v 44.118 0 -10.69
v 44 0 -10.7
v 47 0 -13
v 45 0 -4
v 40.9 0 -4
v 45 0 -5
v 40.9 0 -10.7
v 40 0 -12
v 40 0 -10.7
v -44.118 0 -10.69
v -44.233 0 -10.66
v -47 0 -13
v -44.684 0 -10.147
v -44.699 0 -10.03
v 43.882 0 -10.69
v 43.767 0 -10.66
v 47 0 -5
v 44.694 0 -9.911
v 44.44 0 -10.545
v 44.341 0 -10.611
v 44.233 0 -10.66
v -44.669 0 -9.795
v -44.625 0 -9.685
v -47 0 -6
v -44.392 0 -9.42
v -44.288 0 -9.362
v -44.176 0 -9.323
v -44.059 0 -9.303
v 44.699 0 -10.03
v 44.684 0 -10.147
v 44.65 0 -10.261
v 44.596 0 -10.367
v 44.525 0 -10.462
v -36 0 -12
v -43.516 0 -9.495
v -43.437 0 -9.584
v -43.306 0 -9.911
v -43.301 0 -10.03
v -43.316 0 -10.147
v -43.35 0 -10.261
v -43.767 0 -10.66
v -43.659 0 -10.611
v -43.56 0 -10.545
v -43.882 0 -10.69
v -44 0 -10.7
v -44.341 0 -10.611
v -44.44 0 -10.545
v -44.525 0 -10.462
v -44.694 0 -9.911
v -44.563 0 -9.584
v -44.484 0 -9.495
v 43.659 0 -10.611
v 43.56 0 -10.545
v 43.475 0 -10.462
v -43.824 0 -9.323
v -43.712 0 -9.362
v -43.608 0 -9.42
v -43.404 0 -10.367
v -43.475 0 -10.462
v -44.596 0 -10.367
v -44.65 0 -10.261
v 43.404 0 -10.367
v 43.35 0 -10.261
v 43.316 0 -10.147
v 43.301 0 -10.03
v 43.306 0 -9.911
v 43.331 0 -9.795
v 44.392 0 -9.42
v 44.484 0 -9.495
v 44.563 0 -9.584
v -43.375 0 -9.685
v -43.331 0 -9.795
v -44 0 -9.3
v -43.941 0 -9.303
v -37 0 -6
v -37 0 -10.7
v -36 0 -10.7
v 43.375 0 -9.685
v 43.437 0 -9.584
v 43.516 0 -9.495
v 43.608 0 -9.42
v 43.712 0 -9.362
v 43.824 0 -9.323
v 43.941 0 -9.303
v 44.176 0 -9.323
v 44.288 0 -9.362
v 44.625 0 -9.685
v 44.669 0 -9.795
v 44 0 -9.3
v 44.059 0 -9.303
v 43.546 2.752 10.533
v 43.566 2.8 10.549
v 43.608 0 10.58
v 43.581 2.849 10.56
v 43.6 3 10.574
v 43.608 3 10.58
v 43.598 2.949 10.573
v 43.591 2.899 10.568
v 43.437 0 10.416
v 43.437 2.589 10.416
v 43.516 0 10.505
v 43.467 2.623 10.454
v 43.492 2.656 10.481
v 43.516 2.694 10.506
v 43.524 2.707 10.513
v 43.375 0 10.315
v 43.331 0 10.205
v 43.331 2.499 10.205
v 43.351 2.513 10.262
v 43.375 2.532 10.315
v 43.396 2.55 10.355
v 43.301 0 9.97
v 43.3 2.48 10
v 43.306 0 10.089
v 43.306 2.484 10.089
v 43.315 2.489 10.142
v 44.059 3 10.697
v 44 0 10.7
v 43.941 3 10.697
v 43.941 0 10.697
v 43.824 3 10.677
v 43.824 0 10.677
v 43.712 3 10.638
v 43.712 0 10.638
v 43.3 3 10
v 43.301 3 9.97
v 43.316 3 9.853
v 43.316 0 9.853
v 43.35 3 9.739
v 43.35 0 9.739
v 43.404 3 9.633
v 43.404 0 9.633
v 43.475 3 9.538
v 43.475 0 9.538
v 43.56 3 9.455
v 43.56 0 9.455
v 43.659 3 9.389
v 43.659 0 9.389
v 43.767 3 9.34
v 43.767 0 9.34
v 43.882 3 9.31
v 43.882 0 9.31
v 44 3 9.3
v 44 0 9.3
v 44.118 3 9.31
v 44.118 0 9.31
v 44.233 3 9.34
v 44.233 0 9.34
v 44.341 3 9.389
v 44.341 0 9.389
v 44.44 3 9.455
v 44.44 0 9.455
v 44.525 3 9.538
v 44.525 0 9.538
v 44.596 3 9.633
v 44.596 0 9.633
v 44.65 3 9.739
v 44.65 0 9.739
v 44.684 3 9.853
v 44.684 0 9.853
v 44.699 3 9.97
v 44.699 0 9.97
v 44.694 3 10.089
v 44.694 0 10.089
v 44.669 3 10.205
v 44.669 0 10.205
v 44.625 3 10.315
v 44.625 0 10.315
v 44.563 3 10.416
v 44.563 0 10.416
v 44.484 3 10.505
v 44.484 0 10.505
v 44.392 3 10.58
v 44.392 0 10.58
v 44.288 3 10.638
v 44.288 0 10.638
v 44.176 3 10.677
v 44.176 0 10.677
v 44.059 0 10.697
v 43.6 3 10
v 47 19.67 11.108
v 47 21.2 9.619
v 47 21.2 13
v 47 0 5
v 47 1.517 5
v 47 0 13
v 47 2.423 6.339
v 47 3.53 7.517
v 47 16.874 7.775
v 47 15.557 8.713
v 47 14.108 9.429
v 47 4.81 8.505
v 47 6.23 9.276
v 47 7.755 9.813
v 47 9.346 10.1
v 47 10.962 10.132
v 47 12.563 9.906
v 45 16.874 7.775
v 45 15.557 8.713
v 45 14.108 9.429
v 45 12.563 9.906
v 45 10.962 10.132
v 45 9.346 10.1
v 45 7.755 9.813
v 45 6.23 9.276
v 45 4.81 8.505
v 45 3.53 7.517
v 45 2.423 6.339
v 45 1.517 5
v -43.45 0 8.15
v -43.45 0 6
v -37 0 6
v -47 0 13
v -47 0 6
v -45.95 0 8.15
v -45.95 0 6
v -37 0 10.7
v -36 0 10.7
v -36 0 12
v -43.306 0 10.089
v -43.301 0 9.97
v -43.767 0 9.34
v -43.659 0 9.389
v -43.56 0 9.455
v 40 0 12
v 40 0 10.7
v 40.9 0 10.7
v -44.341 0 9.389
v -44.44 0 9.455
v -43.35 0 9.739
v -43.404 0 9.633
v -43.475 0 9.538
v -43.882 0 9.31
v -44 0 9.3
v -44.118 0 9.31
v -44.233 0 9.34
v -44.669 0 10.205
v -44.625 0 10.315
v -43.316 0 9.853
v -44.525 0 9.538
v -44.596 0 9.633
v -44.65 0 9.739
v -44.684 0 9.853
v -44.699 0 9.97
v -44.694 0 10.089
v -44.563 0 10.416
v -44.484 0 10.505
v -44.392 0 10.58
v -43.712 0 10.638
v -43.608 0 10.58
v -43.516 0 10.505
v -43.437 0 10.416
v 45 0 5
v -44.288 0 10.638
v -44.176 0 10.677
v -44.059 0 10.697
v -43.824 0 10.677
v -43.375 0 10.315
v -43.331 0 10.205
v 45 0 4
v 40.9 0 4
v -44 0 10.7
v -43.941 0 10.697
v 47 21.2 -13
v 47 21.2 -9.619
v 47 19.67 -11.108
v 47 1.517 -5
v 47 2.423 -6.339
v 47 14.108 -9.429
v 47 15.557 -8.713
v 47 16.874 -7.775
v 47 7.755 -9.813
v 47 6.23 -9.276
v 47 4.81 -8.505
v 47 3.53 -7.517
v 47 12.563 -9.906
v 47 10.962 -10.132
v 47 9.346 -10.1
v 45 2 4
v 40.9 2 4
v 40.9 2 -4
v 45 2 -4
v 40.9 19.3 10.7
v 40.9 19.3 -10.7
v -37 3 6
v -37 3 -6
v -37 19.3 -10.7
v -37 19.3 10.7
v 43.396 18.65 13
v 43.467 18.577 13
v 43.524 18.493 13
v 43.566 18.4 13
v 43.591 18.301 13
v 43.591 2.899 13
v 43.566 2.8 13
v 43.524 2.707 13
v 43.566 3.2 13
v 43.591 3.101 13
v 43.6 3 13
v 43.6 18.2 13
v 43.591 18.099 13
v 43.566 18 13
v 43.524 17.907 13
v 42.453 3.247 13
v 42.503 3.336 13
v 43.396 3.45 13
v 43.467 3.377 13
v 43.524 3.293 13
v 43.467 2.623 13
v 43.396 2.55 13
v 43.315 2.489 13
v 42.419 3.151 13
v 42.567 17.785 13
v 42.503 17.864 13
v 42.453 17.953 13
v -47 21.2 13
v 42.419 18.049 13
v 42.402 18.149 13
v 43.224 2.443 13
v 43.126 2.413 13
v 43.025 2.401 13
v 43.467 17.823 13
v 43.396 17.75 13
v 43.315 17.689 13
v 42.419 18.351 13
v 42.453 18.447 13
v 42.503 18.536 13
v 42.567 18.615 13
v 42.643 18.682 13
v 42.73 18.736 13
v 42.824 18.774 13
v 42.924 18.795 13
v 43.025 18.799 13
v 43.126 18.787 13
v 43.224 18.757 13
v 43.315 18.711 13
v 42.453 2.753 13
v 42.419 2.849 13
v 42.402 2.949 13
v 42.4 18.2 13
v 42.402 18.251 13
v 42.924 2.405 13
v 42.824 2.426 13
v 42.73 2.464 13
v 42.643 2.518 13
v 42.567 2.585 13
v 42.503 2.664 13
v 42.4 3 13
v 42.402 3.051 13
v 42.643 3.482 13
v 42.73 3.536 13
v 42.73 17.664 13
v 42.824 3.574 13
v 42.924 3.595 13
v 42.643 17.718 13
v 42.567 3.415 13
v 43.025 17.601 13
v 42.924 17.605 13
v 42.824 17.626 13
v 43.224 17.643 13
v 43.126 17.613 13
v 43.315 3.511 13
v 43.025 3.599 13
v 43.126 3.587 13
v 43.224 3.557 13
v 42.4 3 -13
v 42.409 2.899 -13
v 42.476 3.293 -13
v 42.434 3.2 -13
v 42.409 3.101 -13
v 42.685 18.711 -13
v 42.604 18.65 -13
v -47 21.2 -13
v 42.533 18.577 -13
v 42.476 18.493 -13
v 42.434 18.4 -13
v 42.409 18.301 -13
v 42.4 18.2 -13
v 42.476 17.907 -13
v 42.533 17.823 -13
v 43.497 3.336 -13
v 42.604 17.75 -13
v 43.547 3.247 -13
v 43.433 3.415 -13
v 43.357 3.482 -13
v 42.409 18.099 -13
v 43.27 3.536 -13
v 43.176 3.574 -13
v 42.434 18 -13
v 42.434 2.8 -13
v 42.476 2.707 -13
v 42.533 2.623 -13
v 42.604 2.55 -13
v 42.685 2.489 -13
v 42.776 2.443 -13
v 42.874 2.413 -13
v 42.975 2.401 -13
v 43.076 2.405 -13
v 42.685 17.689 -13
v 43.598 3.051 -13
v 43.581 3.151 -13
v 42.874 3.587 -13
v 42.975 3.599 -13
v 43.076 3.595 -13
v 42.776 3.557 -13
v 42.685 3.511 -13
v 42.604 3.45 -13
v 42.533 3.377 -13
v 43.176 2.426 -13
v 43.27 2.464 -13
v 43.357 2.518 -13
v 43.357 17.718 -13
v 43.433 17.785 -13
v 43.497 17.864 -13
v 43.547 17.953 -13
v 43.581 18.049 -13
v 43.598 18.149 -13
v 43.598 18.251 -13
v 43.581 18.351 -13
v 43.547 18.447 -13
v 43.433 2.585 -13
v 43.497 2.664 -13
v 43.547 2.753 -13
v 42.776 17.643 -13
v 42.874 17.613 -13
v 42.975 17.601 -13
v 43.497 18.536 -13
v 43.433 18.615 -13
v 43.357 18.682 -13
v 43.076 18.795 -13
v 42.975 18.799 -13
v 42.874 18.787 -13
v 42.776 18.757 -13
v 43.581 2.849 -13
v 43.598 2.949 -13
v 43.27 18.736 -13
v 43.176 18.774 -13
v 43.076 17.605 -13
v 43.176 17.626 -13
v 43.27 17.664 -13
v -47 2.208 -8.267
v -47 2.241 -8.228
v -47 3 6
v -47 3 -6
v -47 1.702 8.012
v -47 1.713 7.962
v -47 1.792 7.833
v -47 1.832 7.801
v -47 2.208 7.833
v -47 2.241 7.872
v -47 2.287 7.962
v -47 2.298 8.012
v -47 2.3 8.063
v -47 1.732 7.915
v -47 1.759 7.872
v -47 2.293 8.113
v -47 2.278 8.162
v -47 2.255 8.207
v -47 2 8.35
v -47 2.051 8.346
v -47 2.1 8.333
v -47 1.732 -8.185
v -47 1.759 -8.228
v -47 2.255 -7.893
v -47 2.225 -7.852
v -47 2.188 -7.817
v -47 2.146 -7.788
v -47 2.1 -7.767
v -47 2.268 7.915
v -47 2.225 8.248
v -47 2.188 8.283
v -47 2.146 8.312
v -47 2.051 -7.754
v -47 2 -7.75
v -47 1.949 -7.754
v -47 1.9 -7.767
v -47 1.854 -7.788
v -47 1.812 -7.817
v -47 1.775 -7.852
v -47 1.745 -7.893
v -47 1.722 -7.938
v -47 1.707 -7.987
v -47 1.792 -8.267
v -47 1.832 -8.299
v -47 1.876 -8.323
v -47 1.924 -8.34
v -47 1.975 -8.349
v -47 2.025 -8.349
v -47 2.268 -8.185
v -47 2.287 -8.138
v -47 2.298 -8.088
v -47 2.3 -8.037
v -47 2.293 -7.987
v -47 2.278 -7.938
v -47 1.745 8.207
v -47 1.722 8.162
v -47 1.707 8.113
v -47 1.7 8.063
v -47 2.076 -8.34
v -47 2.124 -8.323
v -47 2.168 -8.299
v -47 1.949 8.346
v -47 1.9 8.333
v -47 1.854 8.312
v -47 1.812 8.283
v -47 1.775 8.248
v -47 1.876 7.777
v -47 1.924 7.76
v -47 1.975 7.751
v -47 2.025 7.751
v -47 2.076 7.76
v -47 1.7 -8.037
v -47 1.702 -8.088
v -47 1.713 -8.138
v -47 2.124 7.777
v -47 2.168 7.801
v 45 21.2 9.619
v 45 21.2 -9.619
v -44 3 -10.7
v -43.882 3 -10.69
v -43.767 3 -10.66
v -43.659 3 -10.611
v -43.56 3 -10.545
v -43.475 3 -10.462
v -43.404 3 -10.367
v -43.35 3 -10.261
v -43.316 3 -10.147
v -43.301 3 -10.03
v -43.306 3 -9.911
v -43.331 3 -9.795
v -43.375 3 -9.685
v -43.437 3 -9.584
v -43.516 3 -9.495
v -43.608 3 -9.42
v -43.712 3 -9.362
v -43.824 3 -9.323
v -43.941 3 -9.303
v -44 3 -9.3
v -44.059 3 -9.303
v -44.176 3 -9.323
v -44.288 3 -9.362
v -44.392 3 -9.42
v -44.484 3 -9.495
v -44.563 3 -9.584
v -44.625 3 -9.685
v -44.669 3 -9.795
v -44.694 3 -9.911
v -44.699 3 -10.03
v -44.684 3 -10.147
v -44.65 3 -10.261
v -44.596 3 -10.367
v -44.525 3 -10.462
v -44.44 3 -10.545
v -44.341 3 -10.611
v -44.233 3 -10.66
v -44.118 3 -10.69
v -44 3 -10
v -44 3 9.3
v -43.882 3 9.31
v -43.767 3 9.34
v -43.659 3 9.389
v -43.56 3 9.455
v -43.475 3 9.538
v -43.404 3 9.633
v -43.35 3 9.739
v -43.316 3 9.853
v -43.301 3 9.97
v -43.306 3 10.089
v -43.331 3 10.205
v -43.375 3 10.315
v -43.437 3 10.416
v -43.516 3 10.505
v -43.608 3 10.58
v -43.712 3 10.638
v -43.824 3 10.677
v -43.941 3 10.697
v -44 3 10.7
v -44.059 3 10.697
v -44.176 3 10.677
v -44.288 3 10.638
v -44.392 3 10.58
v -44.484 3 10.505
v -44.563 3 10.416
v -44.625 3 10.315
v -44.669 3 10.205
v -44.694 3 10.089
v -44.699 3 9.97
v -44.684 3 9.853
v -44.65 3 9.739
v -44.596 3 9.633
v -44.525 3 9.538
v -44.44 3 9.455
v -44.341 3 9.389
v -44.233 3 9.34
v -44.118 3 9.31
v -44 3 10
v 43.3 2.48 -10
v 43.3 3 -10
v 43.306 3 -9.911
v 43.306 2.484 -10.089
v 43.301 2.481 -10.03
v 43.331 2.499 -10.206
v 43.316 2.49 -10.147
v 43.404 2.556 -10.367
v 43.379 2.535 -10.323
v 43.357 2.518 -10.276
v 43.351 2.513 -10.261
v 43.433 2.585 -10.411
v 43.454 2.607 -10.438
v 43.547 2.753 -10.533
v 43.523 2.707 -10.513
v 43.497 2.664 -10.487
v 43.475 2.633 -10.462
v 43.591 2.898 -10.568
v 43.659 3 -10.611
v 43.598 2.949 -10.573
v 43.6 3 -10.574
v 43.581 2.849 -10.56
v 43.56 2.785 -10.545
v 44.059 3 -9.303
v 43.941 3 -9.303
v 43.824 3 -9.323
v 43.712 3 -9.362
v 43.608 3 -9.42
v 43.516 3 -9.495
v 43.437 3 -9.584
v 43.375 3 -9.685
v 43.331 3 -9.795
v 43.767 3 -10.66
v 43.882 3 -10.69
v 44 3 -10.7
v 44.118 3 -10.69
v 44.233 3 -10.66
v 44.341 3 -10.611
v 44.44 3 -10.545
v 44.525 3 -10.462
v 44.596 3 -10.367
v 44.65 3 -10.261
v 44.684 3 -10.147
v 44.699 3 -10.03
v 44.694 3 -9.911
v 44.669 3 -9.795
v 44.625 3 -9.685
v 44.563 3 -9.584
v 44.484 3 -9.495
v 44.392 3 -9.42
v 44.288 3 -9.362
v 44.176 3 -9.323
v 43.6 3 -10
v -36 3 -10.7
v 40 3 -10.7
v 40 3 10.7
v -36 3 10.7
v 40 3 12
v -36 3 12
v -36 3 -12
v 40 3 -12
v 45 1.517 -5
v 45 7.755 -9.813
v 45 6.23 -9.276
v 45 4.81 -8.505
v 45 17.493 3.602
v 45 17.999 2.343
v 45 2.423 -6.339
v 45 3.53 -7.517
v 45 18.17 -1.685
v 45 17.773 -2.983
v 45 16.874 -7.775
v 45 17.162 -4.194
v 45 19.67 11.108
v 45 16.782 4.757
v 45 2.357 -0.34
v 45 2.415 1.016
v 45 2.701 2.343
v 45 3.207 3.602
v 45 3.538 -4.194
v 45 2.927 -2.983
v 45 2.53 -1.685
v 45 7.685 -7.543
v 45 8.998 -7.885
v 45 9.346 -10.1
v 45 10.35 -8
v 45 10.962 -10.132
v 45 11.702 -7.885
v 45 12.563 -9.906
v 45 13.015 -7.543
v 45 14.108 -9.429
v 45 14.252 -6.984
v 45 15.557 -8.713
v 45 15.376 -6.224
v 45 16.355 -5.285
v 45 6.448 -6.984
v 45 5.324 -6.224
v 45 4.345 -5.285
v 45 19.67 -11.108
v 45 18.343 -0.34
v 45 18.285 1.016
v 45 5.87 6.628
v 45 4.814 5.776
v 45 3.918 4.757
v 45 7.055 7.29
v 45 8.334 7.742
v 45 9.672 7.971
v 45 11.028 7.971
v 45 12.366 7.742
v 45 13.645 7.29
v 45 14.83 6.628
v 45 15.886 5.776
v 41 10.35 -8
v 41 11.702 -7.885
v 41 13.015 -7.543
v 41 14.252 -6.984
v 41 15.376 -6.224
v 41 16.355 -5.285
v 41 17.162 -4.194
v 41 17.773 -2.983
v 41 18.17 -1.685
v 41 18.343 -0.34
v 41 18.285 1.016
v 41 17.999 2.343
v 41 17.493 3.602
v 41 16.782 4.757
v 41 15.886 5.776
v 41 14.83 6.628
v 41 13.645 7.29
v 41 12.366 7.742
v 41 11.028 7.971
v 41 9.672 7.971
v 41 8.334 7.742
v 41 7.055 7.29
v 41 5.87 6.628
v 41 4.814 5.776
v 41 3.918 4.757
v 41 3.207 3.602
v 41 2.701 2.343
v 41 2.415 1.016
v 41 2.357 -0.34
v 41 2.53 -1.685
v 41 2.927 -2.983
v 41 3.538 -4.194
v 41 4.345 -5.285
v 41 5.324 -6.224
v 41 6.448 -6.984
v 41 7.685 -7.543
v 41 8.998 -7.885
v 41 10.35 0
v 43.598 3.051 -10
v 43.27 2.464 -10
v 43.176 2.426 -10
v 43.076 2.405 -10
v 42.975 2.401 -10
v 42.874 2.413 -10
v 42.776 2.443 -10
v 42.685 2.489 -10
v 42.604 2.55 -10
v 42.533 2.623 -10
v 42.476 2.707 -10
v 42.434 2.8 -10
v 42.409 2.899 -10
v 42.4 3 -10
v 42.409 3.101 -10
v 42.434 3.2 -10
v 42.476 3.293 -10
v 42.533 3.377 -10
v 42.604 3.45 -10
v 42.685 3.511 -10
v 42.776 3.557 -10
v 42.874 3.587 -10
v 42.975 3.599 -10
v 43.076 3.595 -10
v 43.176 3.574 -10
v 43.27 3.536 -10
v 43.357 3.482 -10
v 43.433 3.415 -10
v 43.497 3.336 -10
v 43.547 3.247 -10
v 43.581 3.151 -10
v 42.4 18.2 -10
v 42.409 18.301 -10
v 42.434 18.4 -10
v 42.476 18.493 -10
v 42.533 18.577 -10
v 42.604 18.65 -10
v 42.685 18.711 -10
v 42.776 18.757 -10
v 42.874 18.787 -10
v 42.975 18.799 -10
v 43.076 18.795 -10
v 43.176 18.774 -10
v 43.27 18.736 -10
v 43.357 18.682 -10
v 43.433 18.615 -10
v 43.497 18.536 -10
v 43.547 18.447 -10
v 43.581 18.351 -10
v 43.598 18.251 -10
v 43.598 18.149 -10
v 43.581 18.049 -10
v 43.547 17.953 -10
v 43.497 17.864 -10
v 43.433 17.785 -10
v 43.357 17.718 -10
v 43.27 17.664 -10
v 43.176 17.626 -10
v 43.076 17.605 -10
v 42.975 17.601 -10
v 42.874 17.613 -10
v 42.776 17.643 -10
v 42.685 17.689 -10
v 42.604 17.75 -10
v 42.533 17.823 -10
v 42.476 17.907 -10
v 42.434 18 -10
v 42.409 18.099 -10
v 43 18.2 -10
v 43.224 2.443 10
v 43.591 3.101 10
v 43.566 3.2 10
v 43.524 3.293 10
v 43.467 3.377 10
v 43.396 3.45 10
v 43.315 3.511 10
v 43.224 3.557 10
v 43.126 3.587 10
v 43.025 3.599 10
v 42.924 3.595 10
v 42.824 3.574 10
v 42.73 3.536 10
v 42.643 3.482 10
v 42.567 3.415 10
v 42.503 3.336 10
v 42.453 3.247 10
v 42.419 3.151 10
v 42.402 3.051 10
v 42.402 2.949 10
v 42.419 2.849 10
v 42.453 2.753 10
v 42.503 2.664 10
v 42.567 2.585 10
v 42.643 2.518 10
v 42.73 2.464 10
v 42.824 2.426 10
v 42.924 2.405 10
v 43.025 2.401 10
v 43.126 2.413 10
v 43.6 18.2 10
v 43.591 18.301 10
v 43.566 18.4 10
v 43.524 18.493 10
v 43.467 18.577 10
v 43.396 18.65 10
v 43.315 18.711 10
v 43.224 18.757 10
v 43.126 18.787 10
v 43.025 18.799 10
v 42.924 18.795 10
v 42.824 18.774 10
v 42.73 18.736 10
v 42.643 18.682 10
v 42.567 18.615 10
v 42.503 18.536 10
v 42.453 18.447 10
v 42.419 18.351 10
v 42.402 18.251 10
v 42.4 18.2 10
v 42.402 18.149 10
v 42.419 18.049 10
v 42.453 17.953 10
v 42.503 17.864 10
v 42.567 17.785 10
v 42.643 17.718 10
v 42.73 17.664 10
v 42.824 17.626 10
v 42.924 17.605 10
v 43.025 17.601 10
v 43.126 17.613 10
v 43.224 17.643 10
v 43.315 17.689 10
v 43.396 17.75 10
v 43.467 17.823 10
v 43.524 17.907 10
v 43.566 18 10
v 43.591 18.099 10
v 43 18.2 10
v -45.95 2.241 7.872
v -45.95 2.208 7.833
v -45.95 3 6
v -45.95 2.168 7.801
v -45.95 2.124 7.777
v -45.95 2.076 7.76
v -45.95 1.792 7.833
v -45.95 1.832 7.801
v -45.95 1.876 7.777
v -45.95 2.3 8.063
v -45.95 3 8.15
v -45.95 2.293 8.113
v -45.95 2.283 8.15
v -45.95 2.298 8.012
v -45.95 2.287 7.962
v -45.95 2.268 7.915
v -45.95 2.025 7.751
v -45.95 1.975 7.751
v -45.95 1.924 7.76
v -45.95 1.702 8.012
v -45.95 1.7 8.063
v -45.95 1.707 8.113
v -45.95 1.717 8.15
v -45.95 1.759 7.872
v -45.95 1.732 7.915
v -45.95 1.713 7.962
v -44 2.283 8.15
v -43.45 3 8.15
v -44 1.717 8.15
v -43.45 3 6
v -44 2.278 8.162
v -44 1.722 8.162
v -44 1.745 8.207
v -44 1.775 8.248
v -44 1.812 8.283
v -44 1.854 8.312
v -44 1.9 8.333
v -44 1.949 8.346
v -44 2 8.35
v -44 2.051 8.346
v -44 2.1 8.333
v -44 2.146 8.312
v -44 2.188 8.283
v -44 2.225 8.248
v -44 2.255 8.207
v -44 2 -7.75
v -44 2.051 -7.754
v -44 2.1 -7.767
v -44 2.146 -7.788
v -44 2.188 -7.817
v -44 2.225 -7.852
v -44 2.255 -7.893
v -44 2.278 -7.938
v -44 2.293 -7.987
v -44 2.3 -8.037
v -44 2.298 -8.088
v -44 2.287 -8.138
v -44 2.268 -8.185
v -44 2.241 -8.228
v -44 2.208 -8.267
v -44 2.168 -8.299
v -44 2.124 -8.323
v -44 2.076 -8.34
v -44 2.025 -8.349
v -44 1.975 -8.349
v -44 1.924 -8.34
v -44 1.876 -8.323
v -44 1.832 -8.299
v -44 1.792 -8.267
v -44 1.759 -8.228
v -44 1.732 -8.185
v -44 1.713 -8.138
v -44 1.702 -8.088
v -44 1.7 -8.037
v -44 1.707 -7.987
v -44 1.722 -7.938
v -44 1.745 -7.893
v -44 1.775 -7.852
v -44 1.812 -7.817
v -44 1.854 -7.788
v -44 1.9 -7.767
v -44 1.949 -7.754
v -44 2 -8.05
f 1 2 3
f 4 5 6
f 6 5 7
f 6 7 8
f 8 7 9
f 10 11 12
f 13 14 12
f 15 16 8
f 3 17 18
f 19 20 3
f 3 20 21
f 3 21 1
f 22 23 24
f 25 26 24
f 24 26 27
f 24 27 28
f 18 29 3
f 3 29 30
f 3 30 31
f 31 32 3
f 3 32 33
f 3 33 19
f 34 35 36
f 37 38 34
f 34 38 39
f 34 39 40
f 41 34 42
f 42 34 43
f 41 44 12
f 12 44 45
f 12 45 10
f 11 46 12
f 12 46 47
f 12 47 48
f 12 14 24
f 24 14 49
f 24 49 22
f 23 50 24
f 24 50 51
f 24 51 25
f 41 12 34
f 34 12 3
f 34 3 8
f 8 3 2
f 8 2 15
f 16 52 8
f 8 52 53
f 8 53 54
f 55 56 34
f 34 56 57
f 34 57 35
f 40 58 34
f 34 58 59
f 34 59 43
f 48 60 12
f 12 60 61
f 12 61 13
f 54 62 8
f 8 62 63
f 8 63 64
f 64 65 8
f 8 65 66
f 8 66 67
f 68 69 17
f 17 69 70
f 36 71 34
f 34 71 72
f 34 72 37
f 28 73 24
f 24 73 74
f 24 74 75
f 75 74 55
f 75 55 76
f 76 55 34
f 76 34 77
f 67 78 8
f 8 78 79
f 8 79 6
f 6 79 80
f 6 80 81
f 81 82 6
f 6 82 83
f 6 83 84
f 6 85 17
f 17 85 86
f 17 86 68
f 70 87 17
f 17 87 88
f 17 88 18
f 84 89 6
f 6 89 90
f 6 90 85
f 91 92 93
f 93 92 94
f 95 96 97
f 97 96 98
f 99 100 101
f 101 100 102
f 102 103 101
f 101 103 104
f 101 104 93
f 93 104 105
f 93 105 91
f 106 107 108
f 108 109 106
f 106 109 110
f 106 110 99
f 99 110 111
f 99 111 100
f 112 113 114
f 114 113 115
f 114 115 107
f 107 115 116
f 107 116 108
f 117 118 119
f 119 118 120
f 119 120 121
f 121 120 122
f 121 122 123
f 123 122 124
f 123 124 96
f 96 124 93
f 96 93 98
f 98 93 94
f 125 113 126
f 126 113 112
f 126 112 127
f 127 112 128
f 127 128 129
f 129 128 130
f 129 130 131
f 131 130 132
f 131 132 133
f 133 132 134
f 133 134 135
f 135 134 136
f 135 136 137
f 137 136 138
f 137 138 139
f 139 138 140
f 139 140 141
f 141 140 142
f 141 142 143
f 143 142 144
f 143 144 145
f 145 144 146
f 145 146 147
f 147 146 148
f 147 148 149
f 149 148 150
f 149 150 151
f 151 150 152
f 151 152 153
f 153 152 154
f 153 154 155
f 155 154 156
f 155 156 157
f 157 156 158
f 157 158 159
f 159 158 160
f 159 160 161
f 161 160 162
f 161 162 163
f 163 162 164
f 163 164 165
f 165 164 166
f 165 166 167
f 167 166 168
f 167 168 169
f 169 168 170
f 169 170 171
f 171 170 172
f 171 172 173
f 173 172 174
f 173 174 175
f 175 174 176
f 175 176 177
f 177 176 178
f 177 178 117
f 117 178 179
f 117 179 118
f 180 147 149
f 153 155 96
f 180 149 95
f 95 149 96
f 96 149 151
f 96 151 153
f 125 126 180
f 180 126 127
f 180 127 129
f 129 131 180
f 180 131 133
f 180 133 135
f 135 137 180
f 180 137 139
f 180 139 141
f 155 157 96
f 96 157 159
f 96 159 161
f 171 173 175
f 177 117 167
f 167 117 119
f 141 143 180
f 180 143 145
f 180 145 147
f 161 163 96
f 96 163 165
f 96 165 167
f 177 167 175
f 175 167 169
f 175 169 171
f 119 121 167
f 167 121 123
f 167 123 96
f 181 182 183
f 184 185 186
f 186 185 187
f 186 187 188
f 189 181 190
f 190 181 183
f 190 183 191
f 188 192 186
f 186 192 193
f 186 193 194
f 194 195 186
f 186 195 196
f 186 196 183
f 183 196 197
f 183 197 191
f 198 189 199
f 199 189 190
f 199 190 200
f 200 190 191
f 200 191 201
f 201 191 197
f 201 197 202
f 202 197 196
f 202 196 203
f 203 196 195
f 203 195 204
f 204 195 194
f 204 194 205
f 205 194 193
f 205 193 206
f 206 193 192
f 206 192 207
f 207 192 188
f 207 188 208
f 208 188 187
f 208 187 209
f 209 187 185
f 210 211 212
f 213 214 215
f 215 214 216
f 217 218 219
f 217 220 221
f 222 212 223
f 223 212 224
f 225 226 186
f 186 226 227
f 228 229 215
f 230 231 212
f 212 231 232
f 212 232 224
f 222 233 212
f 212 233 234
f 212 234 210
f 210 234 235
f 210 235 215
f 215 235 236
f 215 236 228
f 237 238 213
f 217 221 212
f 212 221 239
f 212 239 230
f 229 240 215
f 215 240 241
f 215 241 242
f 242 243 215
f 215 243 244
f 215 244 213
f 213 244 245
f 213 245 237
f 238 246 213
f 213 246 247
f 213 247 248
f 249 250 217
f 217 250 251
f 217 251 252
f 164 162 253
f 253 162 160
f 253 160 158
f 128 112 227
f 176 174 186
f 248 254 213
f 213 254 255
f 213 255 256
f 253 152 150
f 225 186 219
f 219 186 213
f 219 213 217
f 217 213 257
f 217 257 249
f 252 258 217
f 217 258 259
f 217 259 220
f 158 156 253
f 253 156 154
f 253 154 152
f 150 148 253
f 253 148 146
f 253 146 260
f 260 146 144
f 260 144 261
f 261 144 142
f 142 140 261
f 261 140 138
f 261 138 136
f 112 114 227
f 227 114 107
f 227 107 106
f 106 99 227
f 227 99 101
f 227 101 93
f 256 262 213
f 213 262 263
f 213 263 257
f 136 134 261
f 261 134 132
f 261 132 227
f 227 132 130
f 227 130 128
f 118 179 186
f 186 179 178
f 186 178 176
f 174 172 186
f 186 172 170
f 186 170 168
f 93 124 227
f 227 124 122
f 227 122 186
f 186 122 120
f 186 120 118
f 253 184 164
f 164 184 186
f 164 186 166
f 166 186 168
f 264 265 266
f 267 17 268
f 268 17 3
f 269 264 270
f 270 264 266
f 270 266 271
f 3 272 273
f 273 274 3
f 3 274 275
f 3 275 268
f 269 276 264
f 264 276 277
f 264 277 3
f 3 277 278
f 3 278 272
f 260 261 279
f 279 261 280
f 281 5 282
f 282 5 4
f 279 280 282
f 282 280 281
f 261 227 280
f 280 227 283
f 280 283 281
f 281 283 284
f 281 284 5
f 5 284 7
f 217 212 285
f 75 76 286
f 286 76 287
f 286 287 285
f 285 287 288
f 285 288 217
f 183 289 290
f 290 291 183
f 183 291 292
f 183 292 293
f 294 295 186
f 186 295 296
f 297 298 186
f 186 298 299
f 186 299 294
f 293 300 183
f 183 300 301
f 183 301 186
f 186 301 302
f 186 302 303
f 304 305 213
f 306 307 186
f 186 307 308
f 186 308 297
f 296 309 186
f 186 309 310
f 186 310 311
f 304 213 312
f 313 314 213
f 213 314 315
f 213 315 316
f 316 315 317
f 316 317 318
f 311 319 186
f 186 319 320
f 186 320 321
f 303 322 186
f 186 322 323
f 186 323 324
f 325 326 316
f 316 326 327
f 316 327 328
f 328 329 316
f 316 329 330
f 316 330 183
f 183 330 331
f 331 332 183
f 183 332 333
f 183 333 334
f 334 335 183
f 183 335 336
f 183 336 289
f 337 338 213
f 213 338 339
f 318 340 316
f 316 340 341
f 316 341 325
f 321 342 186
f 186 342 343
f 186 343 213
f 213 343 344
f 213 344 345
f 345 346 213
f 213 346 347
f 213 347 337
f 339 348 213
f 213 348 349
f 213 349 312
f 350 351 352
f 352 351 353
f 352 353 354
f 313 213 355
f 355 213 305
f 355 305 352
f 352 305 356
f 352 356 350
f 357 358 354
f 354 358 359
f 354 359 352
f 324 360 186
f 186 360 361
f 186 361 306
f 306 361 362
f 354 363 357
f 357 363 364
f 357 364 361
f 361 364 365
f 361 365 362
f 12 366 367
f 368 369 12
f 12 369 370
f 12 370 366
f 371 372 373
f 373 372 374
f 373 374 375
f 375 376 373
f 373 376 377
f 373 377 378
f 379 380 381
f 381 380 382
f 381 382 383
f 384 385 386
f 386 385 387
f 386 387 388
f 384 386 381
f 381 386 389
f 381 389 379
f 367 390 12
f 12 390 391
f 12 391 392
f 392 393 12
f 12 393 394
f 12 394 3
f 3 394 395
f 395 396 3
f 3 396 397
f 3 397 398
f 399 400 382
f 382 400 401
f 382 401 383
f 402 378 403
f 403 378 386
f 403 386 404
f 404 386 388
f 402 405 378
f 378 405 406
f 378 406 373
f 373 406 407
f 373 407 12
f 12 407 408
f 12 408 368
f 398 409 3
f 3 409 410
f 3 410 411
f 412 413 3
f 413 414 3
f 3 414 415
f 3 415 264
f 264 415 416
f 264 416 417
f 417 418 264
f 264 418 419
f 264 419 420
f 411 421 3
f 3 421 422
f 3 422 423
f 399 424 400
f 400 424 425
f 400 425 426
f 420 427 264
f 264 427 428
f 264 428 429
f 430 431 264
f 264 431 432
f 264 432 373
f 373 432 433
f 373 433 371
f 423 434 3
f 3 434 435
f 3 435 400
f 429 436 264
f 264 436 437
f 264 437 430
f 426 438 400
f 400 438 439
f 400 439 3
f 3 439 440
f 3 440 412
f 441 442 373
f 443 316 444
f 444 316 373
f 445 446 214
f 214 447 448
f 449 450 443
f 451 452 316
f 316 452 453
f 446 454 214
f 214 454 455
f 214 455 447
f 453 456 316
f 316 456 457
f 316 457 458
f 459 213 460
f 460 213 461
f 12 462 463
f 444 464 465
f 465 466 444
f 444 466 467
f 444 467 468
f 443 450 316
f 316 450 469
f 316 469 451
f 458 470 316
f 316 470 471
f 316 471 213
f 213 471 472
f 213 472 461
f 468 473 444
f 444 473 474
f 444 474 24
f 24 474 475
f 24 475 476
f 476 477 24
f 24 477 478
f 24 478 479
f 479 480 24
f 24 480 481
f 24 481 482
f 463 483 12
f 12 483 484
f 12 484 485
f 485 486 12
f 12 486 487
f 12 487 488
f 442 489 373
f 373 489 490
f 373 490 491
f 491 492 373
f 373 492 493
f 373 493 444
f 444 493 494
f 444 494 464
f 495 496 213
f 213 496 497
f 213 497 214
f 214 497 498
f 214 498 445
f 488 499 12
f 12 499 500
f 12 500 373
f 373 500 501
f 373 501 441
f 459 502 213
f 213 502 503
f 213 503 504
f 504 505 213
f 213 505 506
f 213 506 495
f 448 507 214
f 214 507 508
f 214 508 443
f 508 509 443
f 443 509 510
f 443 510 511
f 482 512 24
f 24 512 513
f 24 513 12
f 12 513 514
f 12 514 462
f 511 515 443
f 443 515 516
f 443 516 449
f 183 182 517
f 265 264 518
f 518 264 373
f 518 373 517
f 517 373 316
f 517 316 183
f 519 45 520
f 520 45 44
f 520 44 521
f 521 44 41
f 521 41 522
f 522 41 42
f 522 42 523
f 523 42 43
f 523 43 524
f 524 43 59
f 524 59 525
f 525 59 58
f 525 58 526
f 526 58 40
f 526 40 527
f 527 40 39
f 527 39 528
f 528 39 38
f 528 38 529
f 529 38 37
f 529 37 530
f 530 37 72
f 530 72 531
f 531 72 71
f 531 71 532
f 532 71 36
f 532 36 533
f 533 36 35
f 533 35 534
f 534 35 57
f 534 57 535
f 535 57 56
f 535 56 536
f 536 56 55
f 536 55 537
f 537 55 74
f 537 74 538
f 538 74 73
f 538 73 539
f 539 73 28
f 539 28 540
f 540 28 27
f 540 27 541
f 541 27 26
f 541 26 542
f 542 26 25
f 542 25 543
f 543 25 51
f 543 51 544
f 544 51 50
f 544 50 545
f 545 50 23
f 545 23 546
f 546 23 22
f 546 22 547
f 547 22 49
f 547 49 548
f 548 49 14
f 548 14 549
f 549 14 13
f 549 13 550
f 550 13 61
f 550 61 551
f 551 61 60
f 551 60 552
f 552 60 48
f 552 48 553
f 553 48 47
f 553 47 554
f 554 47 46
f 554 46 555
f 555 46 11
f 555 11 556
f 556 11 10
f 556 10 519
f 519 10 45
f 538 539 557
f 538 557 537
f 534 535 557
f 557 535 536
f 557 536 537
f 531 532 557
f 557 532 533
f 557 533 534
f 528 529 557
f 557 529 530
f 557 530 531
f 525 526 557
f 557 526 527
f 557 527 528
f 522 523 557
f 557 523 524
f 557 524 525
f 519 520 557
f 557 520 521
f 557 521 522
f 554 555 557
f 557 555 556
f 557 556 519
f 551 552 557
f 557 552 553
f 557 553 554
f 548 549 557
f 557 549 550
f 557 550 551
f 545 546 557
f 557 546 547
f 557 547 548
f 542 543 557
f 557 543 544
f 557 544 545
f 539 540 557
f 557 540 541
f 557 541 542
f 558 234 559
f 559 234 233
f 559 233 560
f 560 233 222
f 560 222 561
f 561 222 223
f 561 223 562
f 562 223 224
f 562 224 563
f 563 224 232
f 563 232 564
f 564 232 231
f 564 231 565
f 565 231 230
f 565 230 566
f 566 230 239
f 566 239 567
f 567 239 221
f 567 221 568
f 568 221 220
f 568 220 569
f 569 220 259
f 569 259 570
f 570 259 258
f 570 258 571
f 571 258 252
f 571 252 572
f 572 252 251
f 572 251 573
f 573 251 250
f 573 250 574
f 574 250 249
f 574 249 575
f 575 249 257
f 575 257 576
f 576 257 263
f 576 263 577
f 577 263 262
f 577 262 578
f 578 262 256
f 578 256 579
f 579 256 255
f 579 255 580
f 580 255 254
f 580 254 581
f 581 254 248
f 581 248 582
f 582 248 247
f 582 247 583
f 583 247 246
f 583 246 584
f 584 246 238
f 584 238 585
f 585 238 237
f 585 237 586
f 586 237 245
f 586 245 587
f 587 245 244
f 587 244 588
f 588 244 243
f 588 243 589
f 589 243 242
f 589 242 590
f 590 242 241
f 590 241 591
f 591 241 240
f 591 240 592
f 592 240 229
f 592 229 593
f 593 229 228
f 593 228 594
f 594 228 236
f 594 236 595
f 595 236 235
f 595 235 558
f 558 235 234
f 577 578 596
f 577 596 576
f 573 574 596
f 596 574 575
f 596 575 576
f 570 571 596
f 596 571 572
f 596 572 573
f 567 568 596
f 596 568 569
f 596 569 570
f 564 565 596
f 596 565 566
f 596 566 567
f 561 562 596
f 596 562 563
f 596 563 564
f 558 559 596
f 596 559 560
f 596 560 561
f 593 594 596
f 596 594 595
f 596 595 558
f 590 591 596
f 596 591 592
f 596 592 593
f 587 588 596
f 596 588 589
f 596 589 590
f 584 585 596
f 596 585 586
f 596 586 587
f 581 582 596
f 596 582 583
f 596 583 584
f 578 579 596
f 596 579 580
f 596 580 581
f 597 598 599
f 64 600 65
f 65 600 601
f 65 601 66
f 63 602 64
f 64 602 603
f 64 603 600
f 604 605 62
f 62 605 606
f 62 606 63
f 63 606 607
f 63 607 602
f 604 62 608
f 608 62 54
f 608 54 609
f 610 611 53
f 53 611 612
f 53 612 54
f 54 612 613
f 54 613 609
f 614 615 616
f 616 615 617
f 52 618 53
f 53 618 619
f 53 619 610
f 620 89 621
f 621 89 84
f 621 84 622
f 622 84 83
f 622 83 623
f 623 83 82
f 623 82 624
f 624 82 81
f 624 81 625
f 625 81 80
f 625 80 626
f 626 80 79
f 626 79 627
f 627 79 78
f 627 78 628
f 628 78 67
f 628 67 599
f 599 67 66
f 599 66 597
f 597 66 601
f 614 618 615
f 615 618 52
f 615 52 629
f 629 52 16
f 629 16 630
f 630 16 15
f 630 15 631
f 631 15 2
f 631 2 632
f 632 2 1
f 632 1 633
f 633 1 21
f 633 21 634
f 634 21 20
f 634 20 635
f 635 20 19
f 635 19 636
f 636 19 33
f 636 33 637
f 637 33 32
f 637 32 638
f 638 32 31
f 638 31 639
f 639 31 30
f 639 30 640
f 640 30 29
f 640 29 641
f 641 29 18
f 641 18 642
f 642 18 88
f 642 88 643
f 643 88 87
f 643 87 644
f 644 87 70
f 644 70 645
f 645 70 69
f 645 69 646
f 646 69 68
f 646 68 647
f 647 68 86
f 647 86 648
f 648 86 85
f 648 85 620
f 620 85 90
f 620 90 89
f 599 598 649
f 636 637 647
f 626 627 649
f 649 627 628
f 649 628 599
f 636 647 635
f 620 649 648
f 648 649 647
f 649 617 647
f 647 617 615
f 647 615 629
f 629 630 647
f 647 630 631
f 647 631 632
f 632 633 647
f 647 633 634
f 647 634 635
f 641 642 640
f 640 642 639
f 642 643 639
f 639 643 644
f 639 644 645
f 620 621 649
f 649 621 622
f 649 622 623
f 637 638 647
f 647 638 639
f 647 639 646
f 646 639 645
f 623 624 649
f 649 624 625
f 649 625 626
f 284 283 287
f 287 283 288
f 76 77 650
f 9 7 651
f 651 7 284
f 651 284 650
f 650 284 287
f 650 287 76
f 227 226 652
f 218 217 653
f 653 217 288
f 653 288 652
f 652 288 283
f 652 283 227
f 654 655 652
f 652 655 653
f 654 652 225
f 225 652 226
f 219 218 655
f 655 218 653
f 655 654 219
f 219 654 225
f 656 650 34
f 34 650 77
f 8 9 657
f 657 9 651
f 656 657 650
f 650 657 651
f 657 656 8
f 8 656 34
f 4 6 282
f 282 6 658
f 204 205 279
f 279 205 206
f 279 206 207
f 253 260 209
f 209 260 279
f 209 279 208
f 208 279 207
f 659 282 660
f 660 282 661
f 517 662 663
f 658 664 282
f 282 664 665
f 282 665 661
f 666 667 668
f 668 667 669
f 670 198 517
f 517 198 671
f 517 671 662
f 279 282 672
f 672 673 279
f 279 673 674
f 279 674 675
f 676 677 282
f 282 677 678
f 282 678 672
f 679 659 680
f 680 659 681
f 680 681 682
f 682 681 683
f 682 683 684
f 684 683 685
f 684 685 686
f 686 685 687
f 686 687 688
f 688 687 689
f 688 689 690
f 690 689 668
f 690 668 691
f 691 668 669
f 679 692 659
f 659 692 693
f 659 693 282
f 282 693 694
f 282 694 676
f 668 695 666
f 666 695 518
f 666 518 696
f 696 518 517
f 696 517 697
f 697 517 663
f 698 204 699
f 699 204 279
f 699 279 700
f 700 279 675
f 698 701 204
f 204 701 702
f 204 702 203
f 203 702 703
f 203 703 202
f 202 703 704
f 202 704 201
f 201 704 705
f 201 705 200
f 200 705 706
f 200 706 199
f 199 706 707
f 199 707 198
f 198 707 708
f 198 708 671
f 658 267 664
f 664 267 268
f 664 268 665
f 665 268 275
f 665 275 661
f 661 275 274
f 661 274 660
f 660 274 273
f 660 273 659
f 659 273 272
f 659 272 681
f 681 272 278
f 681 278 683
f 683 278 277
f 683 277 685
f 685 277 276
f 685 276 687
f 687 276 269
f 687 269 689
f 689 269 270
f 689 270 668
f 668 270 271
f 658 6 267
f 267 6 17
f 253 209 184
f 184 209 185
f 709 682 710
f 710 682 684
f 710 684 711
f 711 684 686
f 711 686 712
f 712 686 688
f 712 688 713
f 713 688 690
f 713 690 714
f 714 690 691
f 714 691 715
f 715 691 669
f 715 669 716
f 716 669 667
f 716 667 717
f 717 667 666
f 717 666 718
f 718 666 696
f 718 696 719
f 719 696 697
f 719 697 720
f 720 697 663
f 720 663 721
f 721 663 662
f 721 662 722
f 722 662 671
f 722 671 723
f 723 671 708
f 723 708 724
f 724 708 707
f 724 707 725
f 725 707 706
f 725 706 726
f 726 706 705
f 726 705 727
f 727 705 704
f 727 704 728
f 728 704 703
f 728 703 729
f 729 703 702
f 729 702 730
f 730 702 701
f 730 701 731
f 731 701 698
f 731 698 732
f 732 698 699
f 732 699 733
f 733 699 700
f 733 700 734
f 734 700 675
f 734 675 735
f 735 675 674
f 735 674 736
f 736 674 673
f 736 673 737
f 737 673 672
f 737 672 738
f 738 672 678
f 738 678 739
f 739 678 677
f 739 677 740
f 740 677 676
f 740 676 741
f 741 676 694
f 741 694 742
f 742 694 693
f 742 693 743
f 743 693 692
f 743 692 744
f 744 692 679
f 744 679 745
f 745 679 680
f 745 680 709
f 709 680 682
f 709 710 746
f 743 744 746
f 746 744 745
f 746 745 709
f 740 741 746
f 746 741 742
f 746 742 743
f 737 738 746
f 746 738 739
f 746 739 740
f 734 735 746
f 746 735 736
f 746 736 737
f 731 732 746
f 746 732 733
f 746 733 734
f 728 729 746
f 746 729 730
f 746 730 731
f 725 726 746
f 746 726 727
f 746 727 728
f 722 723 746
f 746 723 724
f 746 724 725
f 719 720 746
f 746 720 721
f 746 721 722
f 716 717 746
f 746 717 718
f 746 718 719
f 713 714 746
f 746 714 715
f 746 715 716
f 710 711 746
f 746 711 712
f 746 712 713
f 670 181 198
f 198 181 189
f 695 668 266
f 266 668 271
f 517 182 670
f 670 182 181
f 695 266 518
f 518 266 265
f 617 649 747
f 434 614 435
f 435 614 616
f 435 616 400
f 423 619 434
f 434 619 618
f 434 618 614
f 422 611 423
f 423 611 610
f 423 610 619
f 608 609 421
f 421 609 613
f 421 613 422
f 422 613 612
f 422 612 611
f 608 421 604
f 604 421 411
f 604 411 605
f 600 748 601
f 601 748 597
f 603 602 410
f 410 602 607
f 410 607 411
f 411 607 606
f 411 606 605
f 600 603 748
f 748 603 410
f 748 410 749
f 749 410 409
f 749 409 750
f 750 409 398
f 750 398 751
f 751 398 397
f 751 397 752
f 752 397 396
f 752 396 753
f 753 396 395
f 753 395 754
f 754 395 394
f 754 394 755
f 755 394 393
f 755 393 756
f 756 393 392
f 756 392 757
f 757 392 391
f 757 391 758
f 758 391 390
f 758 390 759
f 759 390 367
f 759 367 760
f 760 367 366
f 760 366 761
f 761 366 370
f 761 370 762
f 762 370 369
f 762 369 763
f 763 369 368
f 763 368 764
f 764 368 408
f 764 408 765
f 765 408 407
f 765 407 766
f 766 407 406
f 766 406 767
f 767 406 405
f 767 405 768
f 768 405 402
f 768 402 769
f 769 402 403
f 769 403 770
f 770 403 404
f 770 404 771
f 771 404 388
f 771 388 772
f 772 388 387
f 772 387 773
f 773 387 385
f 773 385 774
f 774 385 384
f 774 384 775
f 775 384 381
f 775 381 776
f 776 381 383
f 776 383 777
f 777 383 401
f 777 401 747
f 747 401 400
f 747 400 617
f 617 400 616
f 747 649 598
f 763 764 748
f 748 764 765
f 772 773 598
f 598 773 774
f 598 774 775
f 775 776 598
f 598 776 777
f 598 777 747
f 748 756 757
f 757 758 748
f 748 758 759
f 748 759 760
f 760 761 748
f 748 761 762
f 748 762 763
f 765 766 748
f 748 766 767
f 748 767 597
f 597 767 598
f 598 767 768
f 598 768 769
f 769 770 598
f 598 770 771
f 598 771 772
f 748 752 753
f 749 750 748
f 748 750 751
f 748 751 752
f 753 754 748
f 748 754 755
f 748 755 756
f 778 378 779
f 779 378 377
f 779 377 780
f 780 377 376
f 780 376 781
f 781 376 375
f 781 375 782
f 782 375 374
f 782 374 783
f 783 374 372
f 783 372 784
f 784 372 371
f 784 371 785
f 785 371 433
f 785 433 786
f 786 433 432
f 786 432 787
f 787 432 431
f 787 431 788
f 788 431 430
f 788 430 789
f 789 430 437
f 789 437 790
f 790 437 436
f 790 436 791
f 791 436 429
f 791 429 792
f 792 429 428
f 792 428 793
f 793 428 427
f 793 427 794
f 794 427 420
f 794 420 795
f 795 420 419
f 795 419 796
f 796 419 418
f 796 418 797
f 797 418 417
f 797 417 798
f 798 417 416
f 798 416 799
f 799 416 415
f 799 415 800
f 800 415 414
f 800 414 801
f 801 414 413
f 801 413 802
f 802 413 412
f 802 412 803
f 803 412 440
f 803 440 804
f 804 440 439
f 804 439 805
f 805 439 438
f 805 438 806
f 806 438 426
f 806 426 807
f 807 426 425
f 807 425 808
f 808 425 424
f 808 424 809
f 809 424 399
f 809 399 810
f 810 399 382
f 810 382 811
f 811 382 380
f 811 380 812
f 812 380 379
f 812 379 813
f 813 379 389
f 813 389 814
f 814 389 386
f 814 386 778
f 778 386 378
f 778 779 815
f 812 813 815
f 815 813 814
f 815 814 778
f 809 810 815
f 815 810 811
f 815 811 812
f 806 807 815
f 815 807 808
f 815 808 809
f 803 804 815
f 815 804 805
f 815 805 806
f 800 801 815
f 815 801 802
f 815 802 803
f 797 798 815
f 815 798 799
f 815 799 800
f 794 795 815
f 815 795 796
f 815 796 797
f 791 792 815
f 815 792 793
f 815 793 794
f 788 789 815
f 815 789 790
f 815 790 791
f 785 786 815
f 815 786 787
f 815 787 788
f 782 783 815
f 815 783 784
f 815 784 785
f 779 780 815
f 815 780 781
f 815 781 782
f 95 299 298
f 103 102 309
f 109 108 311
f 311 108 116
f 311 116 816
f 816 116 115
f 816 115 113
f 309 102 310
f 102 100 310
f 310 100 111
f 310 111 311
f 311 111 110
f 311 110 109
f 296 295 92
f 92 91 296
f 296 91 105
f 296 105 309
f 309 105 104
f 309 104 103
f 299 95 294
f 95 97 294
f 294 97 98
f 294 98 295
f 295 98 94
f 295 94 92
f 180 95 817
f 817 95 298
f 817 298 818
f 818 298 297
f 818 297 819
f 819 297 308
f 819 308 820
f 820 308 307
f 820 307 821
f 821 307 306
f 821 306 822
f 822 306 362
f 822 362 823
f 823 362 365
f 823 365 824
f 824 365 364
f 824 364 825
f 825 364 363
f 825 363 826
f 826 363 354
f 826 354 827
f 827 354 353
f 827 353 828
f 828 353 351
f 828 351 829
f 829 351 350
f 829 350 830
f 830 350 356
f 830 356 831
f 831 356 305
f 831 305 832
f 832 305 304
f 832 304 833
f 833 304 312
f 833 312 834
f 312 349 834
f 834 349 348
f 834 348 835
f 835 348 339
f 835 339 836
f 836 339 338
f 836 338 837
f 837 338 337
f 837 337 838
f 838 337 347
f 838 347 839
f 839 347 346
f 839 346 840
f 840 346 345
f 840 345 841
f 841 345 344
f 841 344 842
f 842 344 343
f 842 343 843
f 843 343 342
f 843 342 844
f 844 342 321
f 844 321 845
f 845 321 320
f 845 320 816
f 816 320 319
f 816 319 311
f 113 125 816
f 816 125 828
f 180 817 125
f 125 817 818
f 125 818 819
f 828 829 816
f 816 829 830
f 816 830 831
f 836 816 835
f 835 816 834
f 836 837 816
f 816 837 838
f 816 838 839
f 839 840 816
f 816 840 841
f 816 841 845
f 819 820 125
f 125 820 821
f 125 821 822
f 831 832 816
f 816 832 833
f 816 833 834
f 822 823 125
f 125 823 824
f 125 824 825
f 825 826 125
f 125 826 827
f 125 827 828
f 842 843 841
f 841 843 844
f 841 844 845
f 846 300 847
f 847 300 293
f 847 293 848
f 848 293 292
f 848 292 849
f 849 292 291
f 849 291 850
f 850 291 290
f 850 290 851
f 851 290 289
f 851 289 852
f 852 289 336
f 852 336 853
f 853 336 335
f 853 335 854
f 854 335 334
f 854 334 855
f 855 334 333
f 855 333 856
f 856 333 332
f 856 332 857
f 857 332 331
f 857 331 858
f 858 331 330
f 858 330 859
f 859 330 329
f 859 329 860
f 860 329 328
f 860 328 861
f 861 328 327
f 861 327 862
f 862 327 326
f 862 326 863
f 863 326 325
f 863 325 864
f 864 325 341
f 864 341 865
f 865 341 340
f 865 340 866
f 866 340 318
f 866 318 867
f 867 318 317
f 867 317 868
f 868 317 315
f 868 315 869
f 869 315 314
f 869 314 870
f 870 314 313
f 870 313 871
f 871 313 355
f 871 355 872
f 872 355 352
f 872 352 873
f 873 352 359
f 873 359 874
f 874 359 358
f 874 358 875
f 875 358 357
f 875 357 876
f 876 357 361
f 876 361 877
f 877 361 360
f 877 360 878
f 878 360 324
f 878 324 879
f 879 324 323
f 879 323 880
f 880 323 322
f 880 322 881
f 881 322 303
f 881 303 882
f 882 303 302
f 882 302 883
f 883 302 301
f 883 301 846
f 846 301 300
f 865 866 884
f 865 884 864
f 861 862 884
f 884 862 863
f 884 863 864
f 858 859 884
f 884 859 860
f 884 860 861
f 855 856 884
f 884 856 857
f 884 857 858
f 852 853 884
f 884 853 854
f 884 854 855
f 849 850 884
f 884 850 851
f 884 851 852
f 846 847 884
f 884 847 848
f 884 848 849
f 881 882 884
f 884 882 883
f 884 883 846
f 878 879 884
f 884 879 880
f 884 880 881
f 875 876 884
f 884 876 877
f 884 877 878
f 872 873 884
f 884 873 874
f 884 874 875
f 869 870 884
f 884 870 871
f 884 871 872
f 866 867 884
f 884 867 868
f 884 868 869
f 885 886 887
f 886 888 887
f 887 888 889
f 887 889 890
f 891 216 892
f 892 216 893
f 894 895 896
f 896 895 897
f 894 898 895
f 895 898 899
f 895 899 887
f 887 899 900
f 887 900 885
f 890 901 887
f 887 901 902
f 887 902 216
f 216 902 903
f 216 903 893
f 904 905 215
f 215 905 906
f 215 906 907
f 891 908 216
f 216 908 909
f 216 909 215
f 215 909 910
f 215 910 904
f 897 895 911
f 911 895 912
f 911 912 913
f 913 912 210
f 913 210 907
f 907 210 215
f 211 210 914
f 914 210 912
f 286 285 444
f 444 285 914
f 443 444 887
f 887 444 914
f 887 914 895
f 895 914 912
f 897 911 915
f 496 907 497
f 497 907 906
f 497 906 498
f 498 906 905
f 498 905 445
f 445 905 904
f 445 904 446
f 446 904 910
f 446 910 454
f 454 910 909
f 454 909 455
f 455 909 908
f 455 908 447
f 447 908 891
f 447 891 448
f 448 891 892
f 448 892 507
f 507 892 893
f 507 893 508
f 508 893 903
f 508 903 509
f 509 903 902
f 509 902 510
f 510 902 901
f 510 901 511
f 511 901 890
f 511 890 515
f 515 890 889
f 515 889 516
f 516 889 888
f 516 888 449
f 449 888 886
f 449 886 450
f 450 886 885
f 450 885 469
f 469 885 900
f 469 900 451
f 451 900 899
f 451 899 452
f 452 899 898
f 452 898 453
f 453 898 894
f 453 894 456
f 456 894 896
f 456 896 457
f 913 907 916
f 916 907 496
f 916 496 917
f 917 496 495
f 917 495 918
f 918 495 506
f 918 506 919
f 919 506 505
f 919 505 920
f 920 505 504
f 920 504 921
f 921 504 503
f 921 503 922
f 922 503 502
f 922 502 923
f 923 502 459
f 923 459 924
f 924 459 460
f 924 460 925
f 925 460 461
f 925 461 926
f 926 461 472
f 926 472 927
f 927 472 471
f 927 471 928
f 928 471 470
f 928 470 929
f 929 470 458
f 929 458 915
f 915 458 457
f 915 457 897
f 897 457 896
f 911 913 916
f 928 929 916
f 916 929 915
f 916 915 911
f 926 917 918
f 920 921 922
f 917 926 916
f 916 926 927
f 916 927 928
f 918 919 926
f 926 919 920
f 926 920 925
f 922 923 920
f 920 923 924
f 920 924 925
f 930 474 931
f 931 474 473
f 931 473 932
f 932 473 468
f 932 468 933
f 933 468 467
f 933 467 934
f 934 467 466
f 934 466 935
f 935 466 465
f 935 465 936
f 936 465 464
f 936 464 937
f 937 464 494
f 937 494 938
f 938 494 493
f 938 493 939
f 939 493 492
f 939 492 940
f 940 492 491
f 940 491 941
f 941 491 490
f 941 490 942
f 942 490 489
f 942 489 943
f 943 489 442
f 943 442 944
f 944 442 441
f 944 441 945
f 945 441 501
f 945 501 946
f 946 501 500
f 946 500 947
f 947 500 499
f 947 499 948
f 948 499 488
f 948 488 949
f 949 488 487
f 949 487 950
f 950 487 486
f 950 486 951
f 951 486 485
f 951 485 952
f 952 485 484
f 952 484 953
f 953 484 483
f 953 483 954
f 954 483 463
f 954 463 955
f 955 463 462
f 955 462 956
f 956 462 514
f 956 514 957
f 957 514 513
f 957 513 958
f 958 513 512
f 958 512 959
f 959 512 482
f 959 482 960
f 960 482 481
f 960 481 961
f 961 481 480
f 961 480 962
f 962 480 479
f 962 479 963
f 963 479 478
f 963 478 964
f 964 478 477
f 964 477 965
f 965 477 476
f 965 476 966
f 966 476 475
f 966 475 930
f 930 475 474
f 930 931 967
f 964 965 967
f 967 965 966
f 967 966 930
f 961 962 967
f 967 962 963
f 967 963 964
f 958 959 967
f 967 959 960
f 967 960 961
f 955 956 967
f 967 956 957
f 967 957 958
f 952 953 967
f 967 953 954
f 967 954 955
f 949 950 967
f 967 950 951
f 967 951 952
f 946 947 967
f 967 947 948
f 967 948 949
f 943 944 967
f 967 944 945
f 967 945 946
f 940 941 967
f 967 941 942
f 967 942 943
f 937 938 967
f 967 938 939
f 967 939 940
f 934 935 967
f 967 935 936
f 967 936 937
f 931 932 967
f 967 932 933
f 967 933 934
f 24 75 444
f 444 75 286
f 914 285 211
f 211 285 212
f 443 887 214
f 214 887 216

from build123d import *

# Parameters (mm, degrees)
SKETCH_1_W           = 94
SKETCH_1_H           = 26
EXTRUDE_1_DEPTH      = 21.2
SKETCH_1_7_R         = 0.7
CUT_EXTRUDE_1_DEPTH  = 3
SKETCH_2_W           = 77.9
SKETCH_2_H           = 21.4
CUT_EXTRUDE_2_DEPTH  = 19.3
SKETCH_5_W           = 5.5
SKETCH_5_H           = 8
CUT_EXTRUDE_3_DEPTH  = 2
SKETCH_6_W           = 76
SKETCH_6_H           = 24
CUT_EXTRUDE_4_DEPTH  = 3
SKETCH_7_R           = 10.15
SKETCH_7_W           = 10
SKETCH_7_H           = 1.516965414
CUT_EXTRUDE_5_DEPTH  = 2
SKETCH_8_R           = 8
CUT_EXTRUDE_6_DEPTH  = 4
CUT_EXTRUDE_12_DEPTH = 2
SKETCH_10_R          = 0.6
CUT_EXTRUDE_13_DEPTH = 3
CUT_EXTRUDE_START    = -23
SKETCH_10_3_R        = 0.6
CUT_EXTRUDE_14_DEPTH = 3
SKETCH_11_W          = 2.5
SKETCH_11_H          = 11
CUT_EXTRUDE_15_DEPTH = 3
SKETCH_12_R          = 0.3
CUT_EXTRUDE_16_DEPTH = 3
SKETCH_13_W          = 12
SKETCH_13_H          = 3
CUT_EXTRUDE_17_DEPTH = 11


with BuildPart() as part:
    # 草图1 → 凸台-拉伸1 (new body)
    with BuildSketch(Plane(origin=(0, 0, 0), x_dir=(1, 0, 0), z_dir=(0, 1, 0))):
        Rectangle(SKETCH_1_W, SKETCH_1_H)
    extrude(amount=EXTRUDE_1_DEPTH)

    # 草图1<7> → 切除-拉伸1 (cut)
    with BuildSketch(Plane(origin=(0, 0, 0), x_dir=(1, 0, 0), z_dir=(0, 1, 0))):
        with Locations(Location((-44, 10, 0), (0, 0, 270))):
            Circle(SKETCH_1_7_R)
        with Locations(Location((-44, -10, 0), (0, 0, 270))):
            Circle(SKETCH_1_7_R)
        with Locations(Location((44, 10, 0), (0, 0, 270))):
            Circle(SKETCH_1_7_R)
        with Locations(Location((44, -10, 0), (0, 0, 270))):
            Circle(SKETCH_1_7_R)
    extrude(amount=CUT_EXTRUDE_1_DEPTH, mode=Mode.SUBTRACT)

    # 草图2 → 切除-拉伸2 (cut)
    with BuildSketch(Plane.XZ):
        with Locations((1.95, 0)):
            Rectangle(SKETCH_2_W, SKETCH_2_H)
    extrude(amount=-CUT_EXTRUDE_2_DEPTH, mode=Mode.SUBTRACT)

    # 草图5 → 切除-拉伸3 (cut)
    with BuildSketch(Plane.XZ):
        with Locations((-39.75, 0)):
            Rectangle(SKETCH_5_W, SKETCH_5_H)
        with Locations((43.65, 0)):
            Rectangle(SKETCH_5_W, SKETCH_5_H)
    extrude(amount=-CUT_EXTRUDE_3_DEPTH, mode=Mode.SUBTRACT)

    # 草图6 → 切除-拉伸4 (cut)
    with BuildSketch(Plane.XZ):
        with Locations((2, 0)):
            Rectangle(SKETCH_6_W, SKETCH_6_H)
    extrude(amount=-CUT_EXTRUDE_4_DEPTH, mode=Mode.SUBTRACT)

    # 草图7 → 切除-拉伸5 (cut)
    with BuildSketch(Plane(origin=(47, 0, 0), x_dir=(0, 0, -1), z_dir=(1, 0, 0))):
        with Locations((0, 10.35)):
            Circle(SKETCH_7_R)
        with Locations((0, 0.758482707)):
            Rectangle(SKETCH_7_W, SKETCH_7_H)
    extrude(amount=-CUT_EXTRUDE_5_DEPTH, mode=Mode.SUBTRACT)

    # 草图8 → 切除-拉伸6 (cut)
    with BuildSketch(Plane(origin=(45, 0, 0), x_dir=(0, 0, -1), z_dir=(1, 0, 0))):
        with Locations((0, 10.35)):
            Circle(SKETCH_8_R)
    extrude(amount=-CUT_EXTRUDE_6_DEPTH, mode=Mode.SUBTRACT)

    # 草图9 → 切除-拉伸12 (cut)
    with BuildSketch(Plane(origin=(47, 0, 0), x_dir=(0, 0, -1), z_dir=(1, 0, 0))):
        with BuildLine():
            Line((-7.775351098, 16.874294238), (0, 10.35))
            Line((0, 10.35), (7.775351098, 16.874294238))
            ThreePointArc((7.775351098, 16.874294238), (0, 20.5), (-7.775351098, 16.874294238))
        make_face()
        with BuildLine():
            ThreePointArc((-7.775351098, 16.874294238), (0, 20.5), (7.775351098, 16.874294238))
            Line((7.775351098, 16.874294238), (11.107644425, 19.67042034))
            ThreePointArc((11.107644425, 19.67042034), (10.391564404, 20.462635128), (9.619121582, 21.2))
            Line((9.619121582, 21.2), (-9.619121582, 21.2))
            ThreePointArc((-9.619121582, 21.2), (-10.391564404, 20.462635128), (-11.107644425, 19.67042034))
            Line((-11.107644425, 19.67042034), (-7.775351098, 16.874294238))
        make_face()
    extrude(amount=-CUT_EXTRUDE_12_DEPTH, mode=Mode.SUBTRACT)

    # 草图10 → 切除-拉伸13 (cut)
    with BuildSketch(Plane(origin=(0, 0, -13), x_dir=(-1, 0, 0), z_dir=(0, 0, -1))):
        with Locations((-43, 18.2)):
            Circle(SKETCH_10_R)
        with Locations((-43, 3)):
            Circle(SKETCH_10_R)
    extrude(amount=-CUT_EXTRUDE_13_DEPTH, mode=Mode.SUBTRACT)

    # 草图10<3> → 切除-拉伸14 (cut)
    with BuildSketch(Plane(origin=(0, 0, -13), x_dir=(-1, 0, 0), z_dir=(0, 0, -1)).offset(CUT_EXTRUDE_START)):
        with Locations((-43, 18.2)):
            Circle(SKETCH_10_3_R)
        with Locations((-43, 3)):
            Circle(SKETCH_10_3_R)
    extrude(amount=-CUT_EXTRUDE_14_DEPTH, mode=Mode.SUBTRACT)

    # 草图11 → 切除-拉伸15 (cut)
    with BuildSketch(Plane.XZ):
        with Locations((-44.7, 2.65)):
            Rectangle(SKETCH_11_W, SKETCH_11_H)
    extrude(amount=-CUT_EXTRUDE_15_DEPTH, mode=Mode.SUBTRACT)

    # 草图12 → 切除-拉伸16 (cut)
    with BuildSketch(Plane.ZY.offset(47)):
        with Locations((-8.05, 2)):
            Circle(SKETCH_12_R)
        with Locations((8.05, 2)):
            Circle(SKETCH_12_R)
    extrude(amount=-CUT_EXTRUDE_16_DEPTH, mode=Mode.SUBTRACT)

    # 草图13 → 切除-拉伸17 (cut)
    with BuildSketch(Plane.ZY.offset(47)):
        with Locations((0, 1.5)):
            Rectangle(SKETCH_13_W, SKETCH_13_H)
    extrude(amount=-CUT_EXTRUDE_17_DEPTH, mode=Mode.SUBTRACT)


solid = part.part
